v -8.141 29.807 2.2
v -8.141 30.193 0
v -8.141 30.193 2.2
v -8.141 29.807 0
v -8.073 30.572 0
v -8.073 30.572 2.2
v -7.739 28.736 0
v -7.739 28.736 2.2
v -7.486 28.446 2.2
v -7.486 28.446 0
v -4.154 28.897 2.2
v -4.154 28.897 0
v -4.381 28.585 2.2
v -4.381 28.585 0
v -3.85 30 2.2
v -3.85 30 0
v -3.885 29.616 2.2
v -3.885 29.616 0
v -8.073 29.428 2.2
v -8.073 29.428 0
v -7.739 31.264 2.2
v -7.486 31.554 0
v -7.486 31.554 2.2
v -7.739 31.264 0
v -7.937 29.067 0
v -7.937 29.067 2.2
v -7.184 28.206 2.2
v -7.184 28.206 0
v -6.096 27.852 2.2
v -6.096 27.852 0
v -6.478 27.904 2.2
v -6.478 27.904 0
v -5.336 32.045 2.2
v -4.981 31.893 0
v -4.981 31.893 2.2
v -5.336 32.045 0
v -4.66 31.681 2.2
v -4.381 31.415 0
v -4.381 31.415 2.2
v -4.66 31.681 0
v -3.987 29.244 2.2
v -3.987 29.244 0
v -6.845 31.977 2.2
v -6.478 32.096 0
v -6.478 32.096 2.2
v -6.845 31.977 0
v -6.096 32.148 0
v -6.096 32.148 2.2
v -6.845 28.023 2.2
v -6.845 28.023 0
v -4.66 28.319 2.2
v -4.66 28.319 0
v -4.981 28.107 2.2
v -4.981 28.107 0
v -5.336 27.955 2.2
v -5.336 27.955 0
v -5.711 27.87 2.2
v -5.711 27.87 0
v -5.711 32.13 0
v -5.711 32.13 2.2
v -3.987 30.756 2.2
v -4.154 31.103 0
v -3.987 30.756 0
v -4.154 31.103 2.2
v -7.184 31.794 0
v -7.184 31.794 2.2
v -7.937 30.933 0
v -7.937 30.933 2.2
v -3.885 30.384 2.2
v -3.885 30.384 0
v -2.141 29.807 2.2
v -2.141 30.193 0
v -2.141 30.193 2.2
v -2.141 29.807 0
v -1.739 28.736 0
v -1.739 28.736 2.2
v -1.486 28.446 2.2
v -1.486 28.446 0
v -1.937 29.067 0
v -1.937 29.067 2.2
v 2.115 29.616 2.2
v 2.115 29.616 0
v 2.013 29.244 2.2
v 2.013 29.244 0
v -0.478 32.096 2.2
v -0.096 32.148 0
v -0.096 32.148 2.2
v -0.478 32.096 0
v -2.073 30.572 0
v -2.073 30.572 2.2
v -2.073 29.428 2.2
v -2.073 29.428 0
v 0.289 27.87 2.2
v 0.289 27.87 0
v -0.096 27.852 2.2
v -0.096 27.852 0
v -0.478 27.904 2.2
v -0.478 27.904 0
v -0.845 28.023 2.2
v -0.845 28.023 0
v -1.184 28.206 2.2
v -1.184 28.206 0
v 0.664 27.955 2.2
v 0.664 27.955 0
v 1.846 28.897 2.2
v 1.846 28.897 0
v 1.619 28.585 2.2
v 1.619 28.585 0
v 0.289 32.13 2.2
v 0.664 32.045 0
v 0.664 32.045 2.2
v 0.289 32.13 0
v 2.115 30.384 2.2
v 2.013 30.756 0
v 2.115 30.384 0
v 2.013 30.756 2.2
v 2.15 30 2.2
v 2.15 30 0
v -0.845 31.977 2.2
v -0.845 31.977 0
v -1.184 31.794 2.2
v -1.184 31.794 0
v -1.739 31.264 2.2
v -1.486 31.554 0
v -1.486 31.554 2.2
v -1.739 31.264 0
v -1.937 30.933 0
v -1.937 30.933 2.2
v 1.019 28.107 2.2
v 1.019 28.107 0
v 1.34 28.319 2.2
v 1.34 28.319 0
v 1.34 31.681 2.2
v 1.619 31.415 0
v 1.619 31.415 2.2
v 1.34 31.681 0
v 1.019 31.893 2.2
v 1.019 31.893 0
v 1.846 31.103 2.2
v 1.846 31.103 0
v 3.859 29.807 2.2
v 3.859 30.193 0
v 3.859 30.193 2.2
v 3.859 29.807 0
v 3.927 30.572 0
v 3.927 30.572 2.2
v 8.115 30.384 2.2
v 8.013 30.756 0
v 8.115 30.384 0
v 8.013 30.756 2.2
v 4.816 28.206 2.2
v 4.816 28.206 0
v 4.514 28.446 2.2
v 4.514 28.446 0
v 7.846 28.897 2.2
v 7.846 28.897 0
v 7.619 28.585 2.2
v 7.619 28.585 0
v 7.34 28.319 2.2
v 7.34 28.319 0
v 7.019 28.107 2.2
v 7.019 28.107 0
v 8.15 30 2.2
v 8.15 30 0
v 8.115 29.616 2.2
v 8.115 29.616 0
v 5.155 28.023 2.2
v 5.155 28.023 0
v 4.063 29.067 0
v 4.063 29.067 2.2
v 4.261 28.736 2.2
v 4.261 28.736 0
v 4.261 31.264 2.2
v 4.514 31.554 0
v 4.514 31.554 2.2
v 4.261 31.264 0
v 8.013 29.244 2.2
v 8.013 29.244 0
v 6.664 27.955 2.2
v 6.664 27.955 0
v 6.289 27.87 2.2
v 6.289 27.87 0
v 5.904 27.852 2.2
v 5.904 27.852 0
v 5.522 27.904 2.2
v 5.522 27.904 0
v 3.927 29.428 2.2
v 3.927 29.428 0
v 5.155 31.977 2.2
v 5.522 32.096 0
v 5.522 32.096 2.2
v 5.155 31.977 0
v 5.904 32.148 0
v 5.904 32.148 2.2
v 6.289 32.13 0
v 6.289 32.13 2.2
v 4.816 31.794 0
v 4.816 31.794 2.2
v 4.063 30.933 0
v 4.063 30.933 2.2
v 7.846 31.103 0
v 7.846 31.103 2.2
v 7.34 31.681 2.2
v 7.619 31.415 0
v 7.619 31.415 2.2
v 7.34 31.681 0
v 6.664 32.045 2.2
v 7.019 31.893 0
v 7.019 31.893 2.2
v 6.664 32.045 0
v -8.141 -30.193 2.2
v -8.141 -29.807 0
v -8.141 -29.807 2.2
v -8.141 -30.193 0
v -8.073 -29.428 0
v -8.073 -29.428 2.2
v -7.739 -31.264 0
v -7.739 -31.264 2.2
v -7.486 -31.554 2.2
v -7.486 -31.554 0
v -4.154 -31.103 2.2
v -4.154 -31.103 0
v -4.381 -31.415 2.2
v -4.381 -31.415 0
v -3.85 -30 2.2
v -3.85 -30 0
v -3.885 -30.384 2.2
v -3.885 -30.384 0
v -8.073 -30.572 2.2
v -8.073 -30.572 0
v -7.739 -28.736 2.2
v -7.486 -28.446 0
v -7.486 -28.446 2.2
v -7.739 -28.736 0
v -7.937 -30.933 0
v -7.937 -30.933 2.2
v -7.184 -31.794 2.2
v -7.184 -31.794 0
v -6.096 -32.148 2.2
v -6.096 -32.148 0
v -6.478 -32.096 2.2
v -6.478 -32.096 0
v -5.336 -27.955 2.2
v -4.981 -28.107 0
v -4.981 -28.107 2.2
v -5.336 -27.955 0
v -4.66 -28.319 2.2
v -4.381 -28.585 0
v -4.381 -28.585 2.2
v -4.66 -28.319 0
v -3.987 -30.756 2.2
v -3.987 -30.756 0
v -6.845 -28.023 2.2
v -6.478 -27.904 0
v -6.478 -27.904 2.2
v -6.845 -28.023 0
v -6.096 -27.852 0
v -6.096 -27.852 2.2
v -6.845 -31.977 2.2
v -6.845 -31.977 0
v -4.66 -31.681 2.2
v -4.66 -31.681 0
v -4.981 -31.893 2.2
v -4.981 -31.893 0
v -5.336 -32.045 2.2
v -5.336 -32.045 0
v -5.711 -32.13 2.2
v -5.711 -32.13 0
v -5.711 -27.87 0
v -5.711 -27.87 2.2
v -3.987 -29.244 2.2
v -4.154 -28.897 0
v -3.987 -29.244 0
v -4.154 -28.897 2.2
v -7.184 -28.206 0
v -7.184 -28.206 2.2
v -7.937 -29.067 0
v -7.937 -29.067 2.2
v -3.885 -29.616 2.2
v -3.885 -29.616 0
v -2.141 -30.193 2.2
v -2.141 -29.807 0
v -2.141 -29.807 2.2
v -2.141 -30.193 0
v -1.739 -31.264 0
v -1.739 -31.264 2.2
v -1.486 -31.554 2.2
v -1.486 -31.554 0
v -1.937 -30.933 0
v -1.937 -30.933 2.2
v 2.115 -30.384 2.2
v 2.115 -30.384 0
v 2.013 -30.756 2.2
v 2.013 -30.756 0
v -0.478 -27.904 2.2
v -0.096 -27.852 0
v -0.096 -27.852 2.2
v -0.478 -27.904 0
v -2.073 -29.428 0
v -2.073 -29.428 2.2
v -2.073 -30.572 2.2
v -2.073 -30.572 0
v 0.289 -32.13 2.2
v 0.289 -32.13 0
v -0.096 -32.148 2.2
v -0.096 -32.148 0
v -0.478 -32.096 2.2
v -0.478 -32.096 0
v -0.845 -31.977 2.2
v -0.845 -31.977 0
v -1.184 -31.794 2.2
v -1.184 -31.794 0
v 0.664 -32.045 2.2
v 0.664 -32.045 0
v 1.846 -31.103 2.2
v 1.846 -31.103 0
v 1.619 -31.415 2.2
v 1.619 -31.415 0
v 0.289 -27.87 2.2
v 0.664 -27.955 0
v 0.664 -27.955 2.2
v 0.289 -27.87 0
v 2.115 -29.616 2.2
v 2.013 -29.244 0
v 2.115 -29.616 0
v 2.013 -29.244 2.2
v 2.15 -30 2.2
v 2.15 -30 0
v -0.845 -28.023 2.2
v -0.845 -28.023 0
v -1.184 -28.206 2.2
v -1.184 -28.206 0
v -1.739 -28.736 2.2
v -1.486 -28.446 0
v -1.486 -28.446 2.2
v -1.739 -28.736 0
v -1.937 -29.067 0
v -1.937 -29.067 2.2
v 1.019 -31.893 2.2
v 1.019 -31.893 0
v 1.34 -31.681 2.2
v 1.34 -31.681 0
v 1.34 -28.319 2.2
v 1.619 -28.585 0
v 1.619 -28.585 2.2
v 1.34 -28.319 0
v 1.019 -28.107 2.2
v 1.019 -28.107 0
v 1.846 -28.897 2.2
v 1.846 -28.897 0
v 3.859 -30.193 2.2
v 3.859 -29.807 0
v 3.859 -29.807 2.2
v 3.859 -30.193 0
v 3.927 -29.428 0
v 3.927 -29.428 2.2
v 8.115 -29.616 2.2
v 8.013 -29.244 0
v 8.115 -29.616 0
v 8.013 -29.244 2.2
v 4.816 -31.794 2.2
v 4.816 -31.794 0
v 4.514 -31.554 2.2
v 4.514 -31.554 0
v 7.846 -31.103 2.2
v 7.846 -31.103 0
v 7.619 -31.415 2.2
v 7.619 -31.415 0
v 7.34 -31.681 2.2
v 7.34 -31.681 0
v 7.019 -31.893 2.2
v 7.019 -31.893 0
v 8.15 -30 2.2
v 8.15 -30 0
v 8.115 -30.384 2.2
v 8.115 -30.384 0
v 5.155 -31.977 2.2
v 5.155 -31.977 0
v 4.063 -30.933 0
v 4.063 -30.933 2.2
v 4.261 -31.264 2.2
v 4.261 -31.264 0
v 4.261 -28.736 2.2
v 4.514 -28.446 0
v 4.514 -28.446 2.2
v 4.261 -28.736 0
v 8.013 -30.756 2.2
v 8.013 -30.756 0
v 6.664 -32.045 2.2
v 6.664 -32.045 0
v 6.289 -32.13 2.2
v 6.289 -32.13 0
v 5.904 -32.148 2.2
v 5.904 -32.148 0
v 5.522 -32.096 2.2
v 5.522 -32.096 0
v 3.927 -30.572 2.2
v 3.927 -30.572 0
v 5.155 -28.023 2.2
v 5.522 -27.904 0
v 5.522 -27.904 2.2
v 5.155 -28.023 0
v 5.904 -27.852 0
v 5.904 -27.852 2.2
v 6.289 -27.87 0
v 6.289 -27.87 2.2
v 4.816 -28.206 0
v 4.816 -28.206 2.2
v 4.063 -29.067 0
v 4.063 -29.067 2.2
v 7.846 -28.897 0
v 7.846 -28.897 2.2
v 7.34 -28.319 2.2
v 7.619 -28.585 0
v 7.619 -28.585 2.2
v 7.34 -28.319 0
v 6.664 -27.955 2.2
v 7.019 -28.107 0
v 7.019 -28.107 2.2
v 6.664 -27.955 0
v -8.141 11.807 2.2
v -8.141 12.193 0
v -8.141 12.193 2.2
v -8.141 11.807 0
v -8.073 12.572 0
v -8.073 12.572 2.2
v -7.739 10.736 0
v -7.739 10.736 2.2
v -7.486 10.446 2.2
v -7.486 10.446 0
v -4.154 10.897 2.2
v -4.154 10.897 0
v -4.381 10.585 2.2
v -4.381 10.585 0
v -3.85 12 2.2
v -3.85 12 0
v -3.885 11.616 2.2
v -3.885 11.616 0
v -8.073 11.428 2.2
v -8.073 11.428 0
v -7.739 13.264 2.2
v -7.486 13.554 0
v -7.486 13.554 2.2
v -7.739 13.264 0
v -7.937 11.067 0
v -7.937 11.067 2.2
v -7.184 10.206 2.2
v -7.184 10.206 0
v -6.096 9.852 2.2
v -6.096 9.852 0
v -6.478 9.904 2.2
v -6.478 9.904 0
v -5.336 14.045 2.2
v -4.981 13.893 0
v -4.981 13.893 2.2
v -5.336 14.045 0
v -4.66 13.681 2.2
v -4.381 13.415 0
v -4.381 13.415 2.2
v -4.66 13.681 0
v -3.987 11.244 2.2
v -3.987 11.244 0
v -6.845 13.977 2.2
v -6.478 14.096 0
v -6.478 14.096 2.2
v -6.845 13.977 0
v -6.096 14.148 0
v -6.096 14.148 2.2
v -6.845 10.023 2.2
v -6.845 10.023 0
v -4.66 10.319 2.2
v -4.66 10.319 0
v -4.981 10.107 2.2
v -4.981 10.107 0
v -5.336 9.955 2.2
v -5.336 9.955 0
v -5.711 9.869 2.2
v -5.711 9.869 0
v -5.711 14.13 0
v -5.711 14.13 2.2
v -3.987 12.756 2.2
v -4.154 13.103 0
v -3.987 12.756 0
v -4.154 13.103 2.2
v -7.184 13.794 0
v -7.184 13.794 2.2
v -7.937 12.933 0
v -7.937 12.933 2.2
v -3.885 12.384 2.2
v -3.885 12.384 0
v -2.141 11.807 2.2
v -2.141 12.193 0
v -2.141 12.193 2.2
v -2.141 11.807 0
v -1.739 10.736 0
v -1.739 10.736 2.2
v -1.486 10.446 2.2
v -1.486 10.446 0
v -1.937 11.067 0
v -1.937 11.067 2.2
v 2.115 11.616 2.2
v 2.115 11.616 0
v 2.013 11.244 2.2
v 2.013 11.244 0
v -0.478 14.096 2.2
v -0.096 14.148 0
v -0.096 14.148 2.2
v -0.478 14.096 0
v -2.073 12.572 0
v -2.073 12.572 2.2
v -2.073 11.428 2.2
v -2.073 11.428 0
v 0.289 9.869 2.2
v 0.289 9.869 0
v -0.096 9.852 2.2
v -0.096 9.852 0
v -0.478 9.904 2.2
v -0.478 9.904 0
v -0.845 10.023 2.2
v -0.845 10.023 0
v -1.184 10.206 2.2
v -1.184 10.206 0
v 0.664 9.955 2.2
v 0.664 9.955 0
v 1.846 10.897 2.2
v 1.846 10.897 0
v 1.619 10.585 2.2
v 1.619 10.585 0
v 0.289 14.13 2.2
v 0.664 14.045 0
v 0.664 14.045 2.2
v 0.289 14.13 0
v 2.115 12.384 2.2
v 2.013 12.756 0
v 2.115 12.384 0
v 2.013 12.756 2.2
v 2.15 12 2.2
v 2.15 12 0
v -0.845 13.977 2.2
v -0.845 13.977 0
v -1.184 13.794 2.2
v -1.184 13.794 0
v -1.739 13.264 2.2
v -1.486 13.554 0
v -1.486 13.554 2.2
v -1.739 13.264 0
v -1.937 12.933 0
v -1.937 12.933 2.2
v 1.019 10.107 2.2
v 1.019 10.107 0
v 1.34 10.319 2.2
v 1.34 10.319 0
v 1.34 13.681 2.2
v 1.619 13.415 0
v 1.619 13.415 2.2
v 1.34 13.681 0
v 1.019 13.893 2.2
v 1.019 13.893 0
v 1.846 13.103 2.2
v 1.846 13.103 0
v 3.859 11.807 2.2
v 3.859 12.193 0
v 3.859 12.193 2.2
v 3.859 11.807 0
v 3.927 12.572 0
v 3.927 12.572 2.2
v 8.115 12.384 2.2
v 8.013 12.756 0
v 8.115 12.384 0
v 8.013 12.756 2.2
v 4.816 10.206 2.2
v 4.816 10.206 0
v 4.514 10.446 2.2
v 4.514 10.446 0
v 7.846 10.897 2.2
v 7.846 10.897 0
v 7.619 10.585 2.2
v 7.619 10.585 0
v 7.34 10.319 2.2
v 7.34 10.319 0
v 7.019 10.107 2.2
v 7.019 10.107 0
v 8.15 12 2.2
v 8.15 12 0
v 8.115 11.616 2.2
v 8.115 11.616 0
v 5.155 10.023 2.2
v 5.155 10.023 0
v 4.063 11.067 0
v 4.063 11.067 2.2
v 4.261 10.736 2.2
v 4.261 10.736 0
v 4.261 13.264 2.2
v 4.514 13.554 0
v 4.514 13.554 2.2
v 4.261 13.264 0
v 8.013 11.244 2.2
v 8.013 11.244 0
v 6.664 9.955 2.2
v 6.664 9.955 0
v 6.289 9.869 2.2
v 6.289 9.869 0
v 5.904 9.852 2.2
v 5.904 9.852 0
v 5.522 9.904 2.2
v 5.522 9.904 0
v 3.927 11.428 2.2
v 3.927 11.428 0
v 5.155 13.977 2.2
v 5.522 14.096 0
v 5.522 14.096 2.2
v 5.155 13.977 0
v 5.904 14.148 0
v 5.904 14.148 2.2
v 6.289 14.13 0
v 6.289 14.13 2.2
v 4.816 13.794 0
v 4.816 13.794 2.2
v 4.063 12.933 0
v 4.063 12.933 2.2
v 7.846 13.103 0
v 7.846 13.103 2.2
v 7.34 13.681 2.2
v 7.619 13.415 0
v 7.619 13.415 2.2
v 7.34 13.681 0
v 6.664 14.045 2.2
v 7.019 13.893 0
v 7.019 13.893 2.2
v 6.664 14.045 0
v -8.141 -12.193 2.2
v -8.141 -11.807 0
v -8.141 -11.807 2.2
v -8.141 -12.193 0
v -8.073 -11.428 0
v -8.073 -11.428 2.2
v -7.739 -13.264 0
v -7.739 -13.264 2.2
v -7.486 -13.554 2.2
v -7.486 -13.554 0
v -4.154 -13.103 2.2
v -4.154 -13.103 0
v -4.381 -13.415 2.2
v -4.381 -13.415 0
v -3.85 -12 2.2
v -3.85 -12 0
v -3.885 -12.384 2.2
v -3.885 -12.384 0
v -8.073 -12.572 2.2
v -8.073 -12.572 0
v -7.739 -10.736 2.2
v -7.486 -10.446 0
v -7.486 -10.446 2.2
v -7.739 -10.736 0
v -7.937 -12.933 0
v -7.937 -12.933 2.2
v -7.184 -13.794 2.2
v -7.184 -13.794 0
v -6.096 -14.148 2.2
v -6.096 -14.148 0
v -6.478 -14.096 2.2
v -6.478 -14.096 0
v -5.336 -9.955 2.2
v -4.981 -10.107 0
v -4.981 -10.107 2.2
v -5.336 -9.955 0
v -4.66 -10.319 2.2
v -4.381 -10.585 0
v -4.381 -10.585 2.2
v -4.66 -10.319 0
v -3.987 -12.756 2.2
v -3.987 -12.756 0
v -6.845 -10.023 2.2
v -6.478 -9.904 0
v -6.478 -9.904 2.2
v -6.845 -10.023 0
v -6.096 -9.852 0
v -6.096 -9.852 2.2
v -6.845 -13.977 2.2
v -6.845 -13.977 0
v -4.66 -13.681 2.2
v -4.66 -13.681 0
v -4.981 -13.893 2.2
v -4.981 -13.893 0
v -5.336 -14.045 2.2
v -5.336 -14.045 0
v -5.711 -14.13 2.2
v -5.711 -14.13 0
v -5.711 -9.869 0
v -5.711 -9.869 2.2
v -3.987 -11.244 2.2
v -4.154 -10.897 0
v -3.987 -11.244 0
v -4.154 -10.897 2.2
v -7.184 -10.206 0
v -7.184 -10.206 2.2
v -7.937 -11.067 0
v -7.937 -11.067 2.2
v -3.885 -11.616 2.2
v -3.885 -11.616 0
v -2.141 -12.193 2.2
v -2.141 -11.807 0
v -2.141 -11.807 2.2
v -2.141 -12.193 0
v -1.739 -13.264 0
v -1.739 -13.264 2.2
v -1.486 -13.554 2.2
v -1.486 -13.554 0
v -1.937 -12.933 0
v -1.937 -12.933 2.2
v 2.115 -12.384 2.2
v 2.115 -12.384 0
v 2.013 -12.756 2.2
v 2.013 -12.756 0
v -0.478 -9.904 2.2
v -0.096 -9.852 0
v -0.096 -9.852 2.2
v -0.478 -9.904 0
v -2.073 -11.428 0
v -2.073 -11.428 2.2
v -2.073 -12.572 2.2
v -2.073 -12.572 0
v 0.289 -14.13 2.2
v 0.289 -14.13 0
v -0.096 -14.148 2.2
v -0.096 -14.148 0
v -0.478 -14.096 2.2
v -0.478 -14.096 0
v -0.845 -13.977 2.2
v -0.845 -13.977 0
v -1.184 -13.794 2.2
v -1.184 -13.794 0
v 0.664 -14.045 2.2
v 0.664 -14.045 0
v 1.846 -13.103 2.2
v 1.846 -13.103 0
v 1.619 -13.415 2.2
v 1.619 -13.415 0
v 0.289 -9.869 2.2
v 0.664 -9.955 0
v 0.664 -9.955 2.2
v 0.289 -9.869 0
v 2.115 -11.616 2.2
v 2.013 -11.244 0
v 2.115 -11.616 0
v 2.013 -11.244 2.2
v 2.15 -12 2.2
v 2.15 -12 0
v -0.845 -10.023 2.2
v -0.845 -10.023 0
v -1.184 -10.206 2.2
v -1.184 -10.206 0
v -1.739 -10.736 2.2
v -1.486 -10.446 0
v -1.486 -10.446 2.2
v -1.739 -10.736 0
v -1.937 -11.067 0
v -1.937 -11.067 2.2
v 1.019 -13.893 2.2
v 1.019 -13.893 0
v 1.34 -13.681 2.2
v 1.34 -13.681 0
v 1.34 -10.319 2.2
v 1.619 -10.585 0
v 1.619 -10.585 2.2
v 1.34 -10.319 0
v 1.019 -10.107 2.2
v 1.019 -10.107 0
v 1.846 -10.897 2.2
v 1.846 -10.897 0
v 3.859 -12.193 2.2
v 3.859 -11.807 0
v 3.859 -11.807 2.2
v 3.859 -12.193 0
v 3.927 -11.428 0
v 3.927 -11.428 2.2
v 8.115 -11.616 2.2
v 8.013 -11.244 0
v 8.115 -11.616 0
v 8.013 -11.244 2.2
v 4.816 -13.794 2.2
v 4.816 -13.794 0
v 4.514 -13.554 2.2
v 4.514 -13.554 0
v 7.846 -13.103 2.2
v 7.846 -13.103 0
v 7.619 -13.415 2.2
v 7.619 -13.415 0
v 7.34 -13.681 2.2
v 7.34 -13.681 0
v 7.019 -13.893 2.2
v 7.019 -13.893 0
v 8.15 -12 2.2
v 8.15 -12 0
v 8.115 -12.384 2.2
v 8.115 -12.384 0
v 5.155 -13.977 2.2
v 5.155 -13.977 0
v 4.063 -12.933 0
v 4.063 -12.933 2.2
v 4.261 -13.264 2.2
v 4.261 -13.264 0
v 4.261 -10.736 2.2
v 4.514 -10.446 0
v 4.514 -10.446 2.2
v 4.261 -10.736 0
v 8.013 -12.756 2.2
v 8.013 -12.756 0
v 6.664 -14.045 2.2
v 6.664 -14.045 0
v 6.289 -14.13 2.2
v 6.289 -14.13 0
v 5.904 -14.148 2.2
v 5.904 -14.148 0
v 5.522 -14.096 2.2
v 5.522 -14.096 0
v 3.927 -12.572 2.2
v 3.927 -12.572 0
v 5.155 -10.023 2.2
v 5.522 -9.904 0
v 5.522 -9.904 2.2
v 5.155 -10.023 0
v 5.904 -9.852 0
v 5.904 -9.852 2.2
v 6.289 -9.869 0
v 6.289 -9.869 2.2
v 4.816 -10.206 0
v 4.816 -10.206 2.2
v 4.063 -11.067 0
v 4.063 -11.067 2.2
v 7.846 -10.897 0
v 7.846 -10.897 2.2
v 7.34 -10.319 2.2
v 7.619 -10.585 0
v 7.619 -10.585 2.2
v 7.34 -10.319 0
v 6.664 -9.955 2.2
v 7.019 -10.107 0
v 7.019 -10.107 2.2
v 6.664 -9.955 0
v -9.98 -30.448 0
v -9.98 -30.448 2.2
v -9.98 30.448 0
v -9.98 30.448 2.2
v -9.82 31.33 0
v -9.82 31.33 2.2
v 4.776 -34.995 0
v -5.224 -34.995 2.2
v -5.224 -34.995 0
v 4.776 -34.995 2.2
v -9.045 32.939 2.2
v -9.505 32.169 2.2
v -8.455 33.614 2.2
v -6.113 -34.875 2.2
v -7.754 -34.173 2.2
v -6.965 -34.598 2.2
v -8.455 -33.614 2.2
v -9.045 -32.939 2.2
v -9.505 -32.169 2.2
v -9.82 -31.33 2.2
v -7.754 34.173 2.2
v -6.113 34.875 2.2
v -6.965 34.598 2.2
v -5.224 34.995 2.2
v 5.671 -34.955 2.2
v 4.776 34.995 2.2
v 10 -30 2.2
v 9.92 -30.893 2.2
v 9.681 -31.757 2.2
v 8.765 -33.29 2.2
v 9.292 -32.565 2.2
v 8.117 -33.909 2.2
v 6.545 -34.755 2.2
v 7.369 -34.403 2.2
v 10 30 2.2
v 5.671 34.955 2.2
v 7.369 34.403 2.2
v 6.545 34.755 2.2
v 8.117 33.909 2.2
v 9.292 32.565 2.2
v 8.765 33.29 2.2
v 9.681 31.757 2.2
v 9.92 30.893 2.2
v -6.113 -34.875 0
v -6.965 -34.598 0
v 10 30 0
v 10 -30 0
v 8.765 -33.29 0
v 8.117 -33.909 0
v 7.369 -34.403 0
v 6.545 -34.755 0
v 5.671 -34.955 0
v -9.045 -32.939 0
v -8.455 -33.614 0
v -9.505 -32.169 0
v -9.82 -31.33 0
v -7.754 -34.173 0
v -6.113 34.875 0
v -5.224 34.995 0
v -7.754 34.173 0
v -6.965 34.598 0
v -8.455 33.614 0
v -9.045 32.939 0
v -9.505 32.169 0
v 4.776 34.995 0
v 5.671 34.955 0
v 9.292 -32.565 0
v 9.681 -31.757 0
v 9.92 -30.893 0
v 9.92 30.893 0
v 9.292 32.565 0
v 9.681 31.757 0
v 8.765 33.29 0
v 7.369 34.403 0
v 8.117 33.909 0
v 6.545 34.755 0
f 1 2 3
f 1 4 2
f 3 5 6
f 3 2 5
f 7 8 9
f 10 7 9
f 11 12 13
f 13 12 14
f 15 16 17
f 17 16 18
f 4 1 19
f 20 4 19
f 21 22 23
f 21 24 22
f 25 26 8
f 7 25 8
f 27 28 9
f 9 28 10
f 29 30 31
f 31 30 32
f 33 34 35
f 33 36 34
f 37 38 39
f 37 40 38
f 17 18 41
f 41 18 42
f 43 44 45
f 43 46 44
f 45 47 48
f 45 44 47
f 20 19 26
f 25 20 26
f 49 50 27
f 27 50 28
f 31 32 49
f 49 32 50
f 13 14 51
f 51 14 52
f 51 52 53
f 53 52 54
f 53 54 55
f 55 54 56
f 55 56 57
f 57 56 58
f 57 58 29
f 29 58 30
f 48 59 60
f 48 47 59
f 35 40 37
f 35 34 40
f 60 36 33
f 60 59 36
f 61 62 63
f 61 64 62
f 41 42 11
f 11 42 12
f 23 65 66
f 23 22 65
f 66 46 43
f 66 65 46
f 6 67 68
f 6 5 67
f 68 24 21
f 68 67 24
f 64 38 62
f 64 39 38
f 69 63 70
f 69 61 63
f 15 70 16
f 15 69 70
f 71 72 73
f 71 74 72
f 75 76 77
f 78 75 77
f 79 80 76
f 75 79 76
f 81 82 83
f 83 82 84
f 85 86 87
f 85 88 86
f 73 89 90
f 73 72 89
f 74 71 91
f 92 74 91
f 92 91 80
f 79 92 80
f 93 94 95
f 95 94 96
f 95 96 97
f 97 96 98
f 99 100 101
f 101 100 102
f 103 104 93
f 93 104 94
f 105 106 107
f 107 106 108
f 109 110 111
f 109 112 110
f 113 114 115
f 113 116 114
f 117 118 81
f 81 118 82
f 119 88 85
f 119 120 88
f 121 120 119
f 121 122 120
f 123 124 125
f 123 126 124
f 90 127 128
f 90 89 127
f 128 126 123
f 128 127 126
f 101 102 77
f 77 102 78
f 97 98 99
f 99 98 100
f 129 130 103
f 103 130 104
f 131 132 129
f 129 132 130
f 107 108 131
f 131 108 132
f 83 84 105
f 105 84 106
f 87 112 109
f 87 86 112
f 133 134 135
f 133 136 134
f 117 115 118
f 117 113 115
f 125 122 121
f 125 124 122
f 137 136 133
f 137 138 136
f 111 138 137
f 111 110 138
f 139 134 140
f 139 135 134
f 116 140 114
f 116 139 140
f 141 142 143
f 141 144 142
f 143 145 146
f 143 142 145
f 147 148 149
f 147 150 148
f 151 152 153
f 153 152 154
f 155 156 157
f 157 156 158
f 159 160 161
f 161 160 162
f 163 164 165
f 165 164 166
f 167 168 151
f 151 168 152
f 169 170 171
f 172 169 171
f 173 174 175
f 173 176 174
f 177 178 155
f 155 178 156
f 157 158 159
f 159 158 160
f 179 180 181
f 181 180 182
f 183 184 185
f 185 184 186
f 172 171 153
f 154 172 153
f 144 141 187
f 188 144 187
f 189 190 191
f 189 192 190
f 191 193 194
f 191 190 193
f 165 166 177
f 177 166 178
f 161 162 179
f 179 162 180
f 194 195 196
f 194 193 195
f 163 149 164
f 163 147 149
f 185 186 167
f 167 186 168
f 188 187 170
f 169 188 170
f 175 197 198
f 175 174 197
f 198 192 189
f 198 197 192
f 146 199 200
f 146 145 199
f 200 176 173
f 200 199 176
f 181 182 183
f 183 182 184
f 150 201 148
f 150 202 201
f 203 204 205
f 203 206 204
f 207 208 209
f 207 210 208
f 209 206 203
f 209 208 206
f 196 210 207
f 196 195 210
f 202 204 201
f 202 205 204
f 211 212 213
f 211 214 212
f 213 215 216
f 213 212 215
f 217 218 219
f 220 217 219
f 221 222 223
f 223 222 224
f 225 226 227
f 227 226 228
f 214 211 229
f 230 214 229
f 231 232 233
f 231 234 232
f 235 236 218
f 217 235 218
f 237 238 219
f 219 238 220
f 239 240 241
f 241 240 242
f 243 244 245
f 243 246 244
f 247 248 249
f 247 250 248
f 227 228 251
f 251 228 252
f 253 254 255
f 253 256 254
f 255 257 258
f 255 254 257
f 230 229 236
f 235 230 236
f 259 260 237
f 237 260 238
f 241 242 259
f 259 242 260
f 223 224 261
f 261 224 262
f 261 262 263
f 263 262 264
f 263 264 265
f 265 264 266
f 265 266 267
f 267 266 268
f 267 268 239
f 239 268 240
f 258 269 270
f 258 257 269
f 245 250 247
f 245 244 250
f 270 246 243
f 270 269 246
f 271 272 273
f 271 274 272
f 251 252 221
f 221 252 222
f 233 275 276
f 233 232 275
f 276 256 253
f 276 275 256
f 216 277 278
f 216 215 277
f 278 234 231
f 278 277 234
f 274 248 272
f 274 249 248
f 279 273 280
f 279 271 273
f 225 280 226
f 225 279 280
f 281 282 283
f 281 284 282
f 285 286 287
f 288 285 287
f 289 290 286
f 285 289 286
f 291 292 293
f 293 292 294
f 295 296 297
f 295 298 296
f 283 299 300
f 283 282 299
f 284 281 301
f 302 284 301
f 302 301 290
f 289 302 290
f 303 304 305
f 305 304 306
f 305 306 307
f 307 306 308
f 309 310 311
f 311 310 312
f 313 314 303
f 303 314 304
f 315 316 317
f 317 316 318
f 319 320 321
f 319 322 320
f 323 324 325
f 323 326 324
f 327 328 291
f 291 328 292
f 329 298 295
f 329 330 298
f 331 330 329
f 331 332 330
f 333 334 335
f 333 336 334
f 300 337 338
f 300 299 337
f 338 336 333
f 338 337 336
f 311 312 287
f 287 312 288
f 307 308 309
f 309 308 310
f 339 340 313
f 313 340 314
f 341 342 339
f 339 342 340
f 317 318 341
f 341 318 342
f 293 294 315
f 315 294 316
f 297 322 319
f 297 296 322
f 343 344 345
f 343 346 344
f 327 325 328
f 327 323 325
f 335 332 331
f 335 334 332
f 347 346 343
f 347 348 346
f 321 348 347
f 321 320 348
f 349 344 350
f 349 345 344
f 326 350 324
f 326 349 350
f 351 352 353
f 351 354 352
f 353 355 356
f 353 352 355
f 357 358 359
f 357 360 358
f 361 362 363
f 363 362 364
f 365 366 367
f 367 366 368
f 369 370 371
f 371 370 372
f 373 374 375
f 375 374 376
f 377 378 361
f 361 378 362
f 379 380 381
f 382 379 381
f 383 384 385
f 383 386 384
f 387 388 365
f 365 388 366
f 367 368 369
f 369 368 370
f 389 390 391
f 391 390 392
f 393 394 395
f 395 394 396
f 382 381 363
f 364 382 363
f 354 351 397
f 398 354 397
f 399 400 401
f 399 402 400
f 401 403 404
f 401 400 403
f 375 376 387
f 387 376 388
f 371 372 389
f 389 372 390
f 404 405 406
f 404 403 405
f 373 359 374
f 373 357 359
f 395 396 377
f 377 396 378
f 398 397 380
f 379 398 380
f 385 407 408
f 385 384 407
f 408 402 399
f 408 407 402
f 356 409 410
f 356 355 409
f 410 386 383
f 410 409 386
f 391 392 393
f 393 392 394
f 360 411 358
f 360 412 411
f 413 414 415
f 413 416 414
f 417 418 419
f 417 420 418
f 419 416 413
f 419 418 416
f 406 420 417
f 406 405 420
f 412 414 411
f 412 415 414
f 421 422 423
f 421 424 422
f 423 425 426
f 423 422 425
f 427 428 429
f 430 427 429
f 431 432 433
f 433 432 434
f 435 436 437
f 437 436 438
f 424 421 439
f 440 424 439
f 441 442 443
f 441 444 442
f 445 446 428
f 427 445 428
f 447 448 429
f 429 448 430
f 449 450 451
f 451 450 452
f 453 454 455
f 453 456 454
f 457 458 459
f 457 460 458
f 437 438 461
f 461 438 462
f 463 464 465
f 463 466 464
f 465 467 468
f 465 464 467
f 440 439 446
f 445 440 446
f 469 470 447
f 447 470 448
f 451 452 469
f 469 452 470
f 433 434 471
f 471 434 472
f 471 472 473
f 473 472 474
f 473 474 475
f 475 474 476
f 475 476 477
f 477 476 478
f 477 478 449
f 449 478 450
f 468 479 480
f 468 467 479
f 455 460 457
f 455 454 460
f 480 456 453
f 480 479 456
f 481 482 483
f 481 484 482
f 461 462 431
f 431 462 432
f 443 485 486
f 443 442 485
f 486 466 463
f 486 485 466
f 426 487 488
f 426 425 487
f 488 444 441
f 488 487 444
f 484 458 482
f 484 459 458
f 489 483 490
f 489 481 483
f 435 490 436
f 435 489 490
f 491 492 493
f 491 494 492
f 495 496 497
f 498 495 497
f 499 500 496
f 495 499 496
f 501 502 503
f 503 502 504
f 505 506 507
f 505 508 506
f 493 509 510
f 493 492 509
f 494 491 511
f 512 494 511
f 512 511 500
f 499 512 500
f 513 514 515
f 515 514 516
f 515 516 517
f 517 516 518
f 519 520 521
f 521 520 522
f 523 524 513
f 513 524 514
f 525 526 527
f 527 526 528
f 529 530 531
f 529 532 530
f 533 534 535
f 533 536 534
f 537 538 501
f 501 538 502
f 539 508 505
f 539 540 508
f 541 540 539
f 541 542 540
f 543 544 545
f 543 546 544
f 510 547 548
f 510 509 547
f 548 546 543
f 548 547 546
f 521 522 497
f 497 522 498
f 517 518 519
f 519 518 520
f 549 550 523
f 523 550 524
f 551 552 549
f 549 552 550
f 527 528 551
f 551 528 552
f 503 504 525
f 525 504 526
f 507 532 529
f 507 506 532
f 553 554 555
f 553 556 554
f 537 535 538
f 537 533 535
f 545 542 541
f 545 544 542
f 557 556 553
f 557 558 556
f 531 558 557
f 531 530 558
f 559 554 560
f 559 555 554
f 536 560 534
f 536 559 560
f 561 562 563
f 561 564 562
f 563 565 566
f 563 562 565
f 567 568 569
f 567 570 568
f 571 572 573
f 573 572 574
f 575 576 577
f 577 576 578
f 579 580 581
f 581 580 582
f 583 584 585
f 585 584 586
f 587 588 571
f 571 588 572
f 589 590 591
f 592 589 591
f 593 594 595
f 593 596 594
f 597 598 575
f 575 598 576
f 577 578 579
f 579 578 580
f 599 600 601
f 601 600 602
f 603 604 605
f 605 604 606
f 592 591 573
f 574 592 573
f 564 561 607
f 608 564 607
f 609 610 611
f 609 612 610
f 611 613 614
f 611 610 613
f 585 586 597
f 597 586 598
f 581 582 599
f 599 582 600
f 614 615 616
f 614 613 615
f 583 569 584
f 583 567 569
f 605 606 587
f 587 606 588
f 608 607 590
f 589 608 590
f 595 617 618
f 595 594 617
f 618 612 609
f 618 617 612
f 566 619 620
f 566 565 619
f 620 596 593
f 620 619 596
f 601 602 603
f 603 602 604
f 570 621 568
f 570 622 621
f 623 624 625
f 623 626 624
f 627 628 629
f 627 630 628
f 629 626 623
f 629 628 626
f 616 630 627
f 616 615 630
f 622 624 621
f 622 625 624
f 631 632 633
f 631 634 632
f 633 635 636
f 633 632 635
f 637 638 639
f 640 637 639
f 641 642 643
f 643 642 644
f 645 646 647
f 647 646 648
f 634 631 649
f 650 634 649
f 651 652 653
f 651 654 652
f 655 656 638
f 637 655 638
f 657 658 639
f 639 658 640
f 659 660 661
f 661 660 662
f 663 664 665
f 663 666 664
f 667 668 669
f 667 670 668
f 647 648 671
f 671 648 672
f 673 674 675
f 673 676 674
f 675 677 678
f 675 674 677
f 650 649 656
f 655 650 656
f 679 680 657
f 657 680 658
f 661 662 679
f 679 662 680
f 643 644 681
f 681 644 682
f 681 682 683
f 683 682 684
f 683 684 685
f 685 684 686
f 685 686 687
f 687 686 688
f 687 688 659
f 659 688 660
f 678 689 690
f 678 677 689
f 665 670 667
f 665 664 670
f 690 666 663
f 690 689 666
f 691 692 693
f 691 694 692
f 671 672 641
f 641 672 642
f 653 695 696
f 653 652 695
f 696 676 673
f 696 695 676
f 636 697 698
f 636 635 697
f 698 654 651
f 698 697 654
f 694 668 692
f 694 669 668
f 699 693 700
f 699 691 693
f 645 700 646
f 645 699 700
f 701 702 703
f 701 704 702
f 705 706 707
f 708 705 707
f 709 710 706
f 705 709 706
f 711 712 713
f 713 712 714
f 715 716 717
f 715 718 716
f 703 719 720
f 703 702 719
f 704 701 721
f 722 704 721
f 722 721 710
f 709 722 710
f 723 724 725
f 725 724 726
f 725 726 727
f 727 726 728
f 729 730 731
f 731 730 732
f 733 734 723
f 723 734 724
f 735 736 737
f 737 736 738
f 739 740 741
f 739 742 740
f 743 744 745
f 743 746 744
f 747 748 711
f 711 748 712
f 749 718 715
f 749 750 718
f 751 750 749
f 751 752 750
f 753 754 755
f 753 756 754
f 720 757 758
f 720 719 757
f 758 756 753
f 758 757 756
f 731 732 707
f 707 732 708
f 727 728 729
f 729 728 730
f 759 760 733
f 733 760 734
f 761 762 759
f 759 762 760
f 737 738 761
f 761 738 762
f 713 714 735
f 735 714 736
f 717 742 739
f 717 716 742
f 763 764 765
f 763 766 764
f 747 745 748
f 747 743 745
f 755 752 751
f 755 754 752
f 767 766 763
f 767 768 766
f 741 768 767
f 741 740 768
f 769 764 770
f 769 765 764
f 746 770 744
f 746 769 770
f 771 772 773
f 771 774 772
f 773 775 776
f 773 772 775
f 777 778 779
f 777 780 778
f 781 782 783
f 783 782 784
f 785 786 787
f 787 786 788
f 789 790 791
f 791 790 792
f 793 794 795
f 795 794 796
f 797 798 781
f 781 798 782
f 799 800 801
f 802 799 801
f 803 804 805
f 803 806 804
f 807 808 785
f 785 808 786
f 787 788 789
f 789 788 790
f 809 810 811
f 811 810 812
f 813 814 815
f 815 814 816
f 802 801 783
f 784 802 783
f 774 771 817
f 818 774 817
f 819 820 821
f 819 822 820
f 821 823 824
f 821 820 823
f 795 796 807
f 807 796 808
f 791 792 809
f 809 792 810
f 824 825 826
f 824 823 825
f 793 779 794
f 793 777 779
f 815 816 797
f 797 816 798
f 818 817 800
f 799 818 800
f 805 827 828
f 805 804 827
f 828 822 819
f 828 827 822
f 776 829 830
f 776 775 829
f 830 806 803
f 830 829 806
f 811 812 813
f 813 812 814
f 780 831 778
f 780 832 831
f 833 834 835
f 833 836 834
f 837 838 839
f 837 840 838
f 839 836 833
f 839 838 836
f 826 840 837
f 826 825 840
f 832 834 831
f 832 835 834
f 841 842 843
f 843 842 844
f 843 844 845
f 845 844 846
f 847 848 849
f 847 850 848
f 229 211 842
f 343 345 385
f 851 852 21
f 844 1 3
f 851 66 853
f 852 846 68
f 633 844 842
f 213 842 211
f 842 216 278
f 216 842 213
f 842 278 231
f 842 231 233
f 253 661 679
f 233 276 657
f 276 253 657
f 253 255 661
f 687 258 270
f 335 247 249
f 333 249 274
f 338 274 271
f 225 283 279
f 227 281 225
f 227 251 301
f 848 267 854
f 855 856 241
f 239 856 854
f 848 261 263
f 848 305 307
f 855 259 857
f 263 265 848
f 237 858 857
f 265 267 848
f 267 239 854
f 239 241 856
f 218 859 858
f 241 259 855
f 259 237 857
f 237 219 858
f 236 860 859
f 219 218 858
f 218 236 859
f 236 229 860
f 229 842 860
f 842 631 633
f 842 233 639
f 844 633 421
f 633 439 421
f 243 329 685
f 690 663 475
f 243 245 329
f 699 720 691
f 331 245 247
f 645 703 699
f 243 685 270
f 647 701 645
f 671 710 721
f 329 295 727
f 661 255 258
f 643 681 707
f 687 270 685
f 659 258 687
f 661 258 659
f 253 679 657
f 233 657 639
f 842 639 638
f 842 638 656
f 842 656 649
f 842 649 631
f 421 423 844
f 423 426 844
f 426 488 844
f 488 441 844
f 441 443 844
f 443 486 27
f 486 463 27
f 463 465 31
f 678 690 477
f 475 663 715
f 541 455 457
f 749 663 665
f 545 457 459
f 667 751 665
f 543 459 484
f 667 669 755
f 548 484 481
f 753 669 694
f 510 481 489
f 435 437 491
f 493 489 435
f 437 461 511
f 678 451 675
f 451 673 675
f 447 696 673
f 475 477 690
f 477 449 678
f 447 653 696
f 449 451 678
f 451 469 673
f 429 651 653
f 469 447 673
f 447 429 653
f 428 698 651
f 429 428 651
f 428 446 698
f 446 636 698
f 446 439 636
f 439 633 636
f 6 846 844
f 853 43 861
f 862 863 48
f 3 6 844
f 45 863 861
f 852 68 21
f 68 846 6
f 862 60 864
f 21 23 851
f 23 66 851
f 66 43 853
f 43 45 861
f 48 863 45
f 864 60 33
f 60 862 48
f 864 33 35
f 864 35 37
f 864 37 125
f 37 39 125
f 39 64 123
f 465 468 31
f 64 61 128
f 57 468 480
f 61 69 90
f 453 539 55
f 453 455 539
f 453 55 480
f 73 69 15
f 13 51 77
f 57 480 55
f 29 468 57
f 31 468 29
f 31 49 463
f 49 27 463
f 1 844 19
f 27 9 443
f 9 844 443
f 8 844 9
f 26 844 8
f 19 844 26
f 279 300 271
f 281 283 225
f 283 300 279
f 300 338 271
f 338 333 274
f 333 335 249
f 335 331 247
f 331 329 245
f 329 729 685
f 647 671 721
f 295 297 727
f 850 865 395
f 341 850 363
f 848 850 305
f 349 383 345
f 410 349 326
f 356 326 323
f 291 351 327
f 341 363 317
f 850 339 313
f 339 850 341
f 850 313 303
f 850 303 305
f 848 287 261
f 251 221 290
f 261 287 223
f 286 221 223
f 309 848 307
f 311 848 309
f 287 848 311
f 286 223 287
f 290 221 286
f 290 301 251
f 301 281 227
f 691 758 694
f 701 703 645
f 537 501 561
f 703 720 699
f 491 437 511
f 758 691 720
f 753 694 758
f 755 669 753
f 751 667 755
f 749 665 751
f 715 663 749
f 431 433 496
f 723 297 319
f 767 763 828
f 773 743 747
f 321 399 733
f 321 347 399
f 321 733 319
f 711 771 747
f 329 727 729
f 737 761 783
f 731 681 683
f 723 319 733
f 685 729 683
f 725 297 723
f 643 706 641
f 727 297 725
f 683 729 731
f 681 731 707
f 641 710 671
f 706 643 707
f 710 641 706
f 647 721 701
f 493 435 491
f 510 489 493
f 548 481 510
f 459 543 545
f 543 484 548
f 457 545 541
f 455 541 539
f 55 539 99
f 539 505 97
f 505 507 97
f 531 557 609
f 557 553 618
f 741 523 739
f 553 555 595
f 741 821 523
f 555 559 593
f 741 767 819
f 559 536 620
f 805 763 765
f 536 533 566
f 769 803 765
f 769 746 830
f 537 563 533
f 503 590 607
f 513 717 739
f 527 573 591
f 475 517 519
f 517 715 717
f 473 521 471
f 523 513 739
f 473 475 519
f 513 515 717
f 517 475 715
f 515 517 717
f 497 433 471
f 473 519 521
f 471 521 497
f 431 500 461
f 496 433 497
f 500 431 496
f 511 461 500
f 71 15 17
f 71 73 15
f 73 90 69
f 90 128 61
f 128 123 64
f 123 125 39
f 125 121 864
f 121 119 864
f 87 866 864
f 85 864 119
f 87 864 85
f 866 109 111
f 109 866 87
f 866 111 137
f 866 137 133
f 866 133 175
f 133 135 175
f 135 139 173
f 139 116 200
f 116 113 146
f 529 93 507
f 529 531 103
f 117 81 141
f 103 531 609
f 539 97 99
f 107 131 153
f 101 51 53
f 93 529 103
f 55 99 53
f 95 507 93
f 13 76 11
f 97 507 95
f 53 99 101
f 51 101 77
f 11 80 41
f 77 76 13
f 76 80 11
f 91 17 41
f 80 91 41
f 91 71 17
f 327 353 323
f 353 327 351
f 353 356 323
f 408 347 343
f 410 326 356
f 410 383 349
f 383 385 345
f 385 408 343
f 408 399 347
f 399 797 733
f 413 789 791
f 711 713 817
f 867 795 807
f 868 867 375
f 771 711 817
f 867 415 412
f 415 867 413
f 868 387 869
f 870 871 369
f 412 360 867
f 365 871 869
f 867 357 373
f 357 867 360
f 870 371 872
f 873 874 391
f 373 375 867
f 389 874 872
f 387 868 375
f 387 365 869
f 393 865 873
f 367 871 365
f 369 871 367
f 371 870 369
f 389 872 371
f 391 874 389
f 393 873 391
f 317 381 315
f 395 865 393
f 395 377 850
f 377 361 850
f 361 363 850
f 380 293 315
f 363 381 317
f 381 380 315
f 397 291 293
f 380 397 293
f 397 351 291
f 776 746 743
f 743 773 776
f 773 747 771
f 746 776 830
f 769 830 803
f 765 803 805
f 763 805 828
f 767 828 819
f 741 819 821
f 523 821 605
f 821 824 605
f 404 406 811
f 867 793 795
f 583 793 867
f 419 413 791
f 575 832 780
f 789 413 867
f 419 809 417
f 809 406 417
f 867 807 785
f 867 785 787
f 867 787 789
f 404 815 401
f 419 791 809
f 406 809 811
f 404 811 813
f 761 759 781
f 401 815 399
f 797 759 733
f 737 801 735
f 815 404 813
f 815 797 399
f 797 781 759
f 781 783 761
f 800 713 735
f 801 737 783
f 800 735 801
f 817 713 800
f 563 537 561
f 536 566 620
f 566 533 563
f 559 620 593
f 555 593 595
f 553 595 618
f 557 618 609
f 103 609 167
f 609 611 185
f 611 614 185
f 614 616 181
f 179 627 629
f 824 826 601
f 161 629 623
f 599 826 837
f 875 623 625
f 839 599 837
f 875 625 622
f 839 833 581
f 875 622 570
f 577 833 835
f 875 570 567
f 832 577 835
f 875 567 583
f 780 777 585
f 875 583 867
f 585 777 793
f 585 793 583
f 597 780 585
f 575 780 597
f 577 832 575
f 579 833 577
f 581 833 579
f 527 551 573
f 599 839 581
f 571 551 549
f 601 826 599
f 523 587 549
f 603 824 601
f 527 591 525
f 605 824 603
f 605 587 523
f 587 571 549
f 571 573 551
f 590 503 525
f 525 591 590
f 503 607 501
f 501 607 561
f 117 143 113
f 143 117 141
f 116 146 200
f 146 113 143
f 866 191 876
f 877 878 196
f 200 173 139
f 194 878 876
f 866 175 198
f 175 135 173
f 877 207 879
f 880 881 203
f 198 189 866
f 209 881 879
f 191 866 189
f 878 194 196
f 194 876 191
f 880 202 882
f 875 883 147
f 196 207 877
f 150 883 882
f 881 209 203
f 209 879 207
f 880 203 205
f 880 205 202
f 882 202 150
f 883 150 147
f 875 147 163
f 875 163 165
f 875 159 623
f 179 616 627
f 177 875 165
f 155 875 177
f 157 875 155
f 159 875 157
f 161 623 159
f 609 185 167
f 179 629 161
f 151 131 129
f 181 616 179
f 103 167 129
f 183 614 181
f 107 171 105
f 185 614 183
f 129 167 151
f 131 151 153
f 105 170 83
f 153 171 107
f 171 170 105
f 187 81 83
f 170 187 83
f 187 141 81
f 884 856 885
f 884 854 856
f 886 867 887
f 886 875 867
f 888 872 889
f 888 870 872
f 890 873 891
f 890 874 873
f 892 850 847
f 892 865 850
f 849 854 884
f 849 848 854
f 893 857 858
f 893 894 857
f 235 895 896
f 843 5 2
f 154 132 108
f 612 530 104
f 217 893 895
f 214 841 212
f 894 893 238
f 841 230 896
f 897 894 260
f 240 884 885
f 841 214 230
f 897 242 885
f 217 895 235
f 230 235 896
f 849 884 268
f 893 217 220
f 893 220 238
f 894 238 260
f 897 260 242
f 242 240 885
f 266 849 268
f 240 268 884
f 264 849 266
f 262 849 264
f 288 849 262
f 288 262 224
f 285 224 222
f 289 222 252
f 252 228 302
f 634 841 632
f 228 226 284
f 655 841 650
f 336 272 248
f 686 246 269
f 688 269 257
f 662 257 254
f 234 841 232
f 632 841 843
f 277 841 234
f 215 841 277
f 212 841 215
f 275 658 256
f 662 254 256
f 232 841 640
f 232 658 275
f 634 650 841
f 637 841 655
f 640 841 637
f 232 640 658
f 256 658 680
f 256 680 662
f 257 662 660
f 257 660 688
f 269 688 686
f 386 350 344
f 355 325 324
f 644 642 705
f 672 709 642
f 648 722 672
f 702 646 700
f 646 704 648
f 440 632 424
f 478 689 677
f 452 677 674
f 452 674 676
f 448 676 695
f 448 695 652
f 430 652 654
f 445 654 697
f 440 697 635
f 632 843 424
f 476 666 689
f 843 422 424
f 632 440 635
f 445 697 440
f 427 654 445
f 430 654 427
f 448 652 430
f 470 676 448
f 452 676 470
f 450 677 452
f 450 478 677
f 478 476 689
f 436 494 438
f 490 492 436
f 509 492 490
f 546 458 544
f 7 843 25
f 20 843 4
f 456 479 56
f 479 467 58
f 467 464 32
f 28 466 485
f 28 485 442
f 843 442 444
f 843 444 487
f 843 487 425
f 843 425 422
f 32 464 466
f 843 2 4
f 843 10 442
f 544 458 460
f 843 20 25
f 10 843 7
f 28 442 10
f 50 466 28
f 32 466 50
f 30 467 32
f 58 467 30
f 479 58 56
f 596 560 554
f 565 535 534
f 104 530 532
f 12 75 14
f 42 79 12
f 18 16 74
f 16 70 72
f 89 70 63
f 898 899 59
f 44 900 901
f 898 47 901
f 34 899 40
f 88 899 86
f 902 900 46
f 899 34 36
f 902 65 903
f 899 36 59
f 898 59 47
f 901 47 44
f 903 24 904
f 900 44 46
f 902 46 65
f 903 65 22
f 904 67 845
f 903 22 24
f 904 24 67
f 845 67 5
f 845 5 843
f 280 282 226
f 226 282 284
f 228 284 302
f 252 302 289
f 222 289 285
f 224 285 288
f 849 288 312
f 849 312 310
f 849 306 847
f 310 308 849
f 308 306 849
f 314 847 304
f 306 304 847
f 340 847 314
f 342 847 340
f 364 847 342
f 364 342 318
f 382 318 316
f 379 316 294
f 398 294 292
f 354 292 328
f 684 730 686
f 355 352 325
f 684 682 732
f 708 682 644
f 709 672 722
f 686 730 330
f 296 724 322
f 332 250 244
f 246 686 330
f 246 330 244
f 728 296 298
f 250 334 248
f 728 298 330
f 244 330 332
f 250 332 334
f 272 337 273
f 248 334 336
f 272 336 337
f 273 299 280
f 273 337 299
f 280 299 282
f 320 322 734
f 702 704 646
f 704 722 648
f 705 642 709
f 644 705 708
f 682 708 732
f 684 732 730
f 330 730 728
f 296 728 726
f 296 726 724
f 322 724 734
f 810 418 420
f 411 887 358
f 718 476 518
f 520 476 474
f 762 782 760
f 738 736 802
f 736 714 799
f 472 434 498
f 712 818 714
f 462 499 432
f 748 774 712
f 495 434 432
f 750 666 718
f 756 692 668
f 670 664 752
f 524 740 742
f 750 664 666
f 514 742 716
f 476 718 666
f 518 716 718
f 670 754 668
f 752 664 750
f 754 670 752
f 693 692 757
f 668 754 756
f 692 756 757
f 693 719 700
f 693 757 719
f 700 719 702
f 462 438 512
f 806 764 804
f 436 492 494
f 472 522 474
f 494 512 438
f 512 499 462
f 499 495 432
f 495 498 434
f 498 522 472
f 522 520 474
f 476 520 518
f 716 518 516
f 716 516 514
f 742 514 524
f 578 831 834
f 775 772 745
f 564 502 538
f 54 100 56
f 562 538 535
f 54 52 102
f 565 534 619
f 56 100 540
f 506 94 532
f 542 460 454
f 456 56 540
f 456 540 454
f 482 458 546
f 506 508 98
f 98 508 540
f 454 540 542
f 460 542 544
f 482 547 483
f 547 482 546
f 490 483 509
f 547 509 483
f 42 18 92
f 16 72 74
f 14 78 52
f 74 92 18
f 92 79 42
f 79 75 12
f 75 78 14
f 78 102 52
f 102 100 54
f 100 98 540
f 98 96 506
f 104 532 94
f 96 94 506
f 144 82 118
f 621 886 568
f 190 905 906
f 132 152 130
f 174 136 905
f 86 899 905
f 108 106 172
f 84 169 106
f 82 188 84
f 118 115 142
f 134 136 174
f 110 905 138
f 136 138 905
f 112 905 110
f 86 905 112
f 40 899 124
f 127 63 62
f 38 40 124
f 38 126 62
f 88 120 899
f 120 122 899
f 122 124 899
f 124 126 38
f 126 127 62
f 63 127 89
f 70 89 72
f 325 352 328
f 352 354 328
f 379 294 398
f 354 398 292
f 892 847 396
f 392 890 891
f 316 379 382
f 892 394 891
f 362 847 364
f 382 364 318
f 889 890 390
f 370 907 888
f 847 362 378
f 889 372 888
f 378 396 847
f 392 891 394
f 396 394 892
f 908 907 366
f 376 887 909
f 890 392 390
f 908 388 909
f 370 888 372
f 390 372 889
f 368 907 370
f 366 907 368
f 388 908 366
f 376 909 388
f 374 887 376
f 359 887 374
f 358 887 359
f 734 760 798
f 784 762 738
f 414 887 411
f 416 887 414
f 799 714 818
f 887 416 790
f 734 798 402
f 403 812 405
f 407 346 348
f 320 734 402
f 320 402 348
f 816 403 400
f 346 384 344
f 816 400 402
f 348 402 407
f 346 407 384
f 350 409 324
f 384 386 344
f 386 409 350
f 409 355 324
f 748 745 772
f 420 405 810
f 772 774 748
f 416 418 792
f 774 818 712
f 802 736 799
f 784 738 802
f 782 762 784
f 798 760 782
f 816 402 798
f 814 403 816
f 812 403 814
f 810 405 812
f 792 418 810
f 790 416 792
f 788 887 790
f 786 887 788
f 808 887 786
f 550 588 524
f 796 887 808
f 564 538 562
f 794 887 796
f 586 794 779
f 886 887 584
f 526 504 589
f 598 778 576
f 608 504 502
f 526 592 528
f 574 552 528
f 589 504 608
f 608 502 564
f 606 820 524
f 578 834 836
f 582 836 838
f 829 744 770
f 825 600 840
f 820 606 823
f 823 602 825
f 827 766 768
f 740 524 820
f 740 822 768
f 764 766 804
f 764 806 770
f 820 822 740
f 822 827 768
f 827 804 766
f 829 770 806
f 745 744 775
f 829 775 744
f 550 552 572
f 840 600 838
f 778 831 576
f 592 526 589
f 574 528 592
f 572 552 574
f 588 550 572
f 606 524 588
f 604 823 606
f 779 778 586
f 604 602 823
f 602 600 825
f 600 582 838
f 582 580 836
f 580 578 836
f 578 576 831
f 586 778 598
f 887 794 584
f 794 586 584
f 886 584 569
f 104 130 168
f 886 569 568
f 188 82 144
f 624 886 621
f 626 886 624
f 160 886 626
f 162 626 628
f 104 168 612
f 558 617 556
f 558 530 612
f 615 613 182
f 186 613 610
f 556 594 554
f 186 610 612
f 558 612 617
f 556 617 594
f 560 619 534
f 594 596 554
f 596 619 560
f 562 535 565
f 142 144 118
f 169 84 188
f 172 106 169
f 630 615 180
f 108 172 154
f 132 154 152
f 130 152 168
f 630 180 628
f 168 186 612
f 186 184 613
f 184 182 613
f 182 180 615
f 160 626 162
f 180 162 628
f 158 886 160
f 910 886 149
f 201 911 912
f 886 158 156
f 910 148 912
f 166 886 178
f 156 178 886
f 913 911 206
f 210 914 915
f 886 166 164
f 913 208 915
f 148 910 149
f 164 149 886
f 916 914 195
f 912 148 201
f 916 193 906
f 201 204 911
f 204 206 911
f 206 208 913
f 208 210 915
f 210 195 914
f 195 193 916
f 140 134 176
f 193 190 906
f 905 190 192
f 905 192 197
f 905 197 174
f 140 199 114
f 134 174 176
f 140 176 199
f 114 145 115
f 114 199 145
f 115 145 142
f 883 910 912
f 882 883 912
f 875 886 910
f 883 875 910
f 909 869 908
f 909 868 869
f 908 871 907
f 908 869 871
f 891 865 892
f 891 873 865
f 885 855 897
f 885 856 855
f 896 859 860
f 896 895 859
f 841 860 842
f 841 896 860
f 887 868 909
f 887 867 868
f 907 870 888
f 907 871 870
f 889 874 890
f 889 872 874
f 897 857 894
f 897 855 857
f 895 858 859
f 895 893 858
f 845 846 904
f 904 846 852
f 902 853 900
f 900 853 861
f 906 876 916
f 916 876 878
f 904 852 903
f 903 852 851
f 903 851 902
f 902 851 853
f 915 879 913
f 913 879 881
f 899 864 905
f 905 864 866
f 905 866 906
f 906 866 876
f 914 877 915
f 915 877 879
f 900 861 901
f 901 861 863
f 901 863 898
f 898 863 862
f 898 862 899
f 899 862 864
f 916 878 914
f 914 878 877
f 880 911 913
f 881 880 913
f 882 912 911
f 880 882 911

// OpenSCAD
// file: ../../util/rounded.scad
// Do a rounded cube
module rounded(x=10, y=10, z=10, r=3, center=false) {
  if (center) {
    translate([-(x/2),-(y/2),0])
      rounded(x, y, z, r);
  } else {
    translate([r,r,0])
    minkowski() {
      cube([x-2*r,y-2*r,z/2]);
      cylinder(h=z/2, r=r);
    }
  }
}
// file: ../../util/hole3.scad
module hole3()
{
    cylinder(d=3.5, h=99, center=true);
}
// file: ../../util/repeat4.scad
module repeat4()
{
    for (r=[0:3])
    rotate([0,0,90*r])
    children();
}
// file: ../../util/hexapath.scad
// Follow an hexagonal path
module hexapath(X, Y, thickness, center=false)
{
    union() {
        linear_extrude(thickness, center=center)
            polygon(points=[
                    [X, Y], [X, -Y], 
                    [Y, -X], [-Y, -X],
                    [-X, -Y], [-X, Y],
                    [-Y, X], [Y, X], 
            ]);
    }
}
// file: ../../models/ollo.scad
// Diameter of plastic ollo holes
OlloHoles = 4.3;

// Width of Ollo "real" plastic
OlloWidth = 3;

// Distance between two ollo holes
OlloSpacing = 6;

// Do an Ollo hole on the part
module olloHole(depth=2.2)
{
    translate([0,0,-0.1])
      cylinder(depth+0.2, OlloHoles/2, OlloHoles/2);
}

// Do 3 ollo holes
module threeOllo(depth=2.2)
{
  for (xy=[[-OlloSpacing,0],[0,0],[OlloSpacing,0]]) {
    translate([xy[0], xy[1], 0])
    olloHole(depth);
  }
}

// Do a servo arm holes
module servoArm(depth=2.2)
{
    threeOllo(depth);
    rotate([0,0,90])
      threeOllo(depth);
}
// file: ../../parts/batfix.scad
include <../models/ollo.scad>;
use <../util/rounded.scad>;
use <../util/screws.scad>;

module batfix(thickness=2.2, cavity=13, height=10, screws=3.2,print=false)
{
	shift=9;
	holesSpacingW = OlloSpacing*7;
	holesSpacingH = OlloSpacing*2;
	R=print?[90,0,0]:[0,0,0];
	translate([-shift,0,height-2*thickness])
	rotate(R)
	difference() {
		union() {
			rounded(50, 20, thickness, 2, center=true);
			translate([shift,0,thickness-height/2])
			cube([cavity+2*thickness,20,height], center=true);
		}
		
		for (X=[-holesSpacingW/2, holesSpacingW/2])
		for (Y=[-holesSpacingH/2, holesSpacingH/2])
		translate([X,Y,-1])			
			cylinder(d=screws, h=thickness+2);
		
		translate([shift,0,0.01+2*thickness-height/2])
			cube([cavity,22,height], center=true);
		
		translate([shift,0,thickness-height])
			children();
	}
}

batfix();
// file: ../../parts/leg.scad
use <../models/ollo.scad>;
use <../util/rounded.scad>;

module leg(sizeA=60, sizeB=20, sizeC=20, sizeBottom=10,
        sizeTop=15, mode="arm", fixationAngle=0, thickness=2.2, print=false)
{
    xOffset = (mode == "side") ? -10 : 0;
    spacing = (mode == "side") ? 24 : 30;

    module legSide()
    {
        difference() {
            union() {
                translate([0,0,sizeA/2])
                    rotate([0,90,0]) {
                        cube([sizeA, 20, thickness], center=true);
                        if (mode == "side") {
                            translate([15-sizeA/2, 10, -thickness/2])
                                rotate([0,0,+fixationAngle])
                                rounded(25,10,thickness, center=true);
                        }
                    }
            }
            translate([-thickness, 0, sizeA-15]) {
                rotate([90,0,90]) {
                    if (mode == "arm") {
                        servoArm(2*thickness);
                    }
                }
                if (mode == "side") {
                    translate([0,10,0])
                        rotate([90,90-fixationAngle,90])
                        threeOllo(2*thickness);
                }
            }
        }
        translate([-thickness/2,0,sizeA]) {
            rotate([90,0,90])
                linear_extrude(thickness)
                polygon([[-10,0],[-1,sizeTop],[1,sizeTop],[10,0]]);
        }
    }

    module biais() {
        Dx = (spacing-sizeBottom)/2;
        Dy = sizeC;
        Dl = sqrt(pow(Dx,2)+pow(Dy,2));

        translate([-(spacing/2)-thickness,-10,-(sizeB+thickness/2)])
            rotate([0,atan2(Dy,Dx),0])
            cube([Dl,20,thickness]);
    }

    if (print) {
        translate([0,0,10-xOffset])
            rotate([90,0,0])
            leg(sizeA, sizeB, sizeC, sizeBottom,
                    sizeTop, mode, fixationAngle, thickness, false);
    } else {
        echo("[PART] leg");
        translate([0,xOffset,-sizeA+15]) {
            cube([spacing+thickness*2, 20, thickness], center=true);

            translate([spacing/2+thickness/2,0,0])
                legSide();
            translate([-(spacing/2+thickness/2),0,0])
                legSide();

            translate([0,0,-sizeB])
                cube([spacing+thickness*2, 20, thickness], center=true);
            translate([spacing/2+thickness/2,0,-sizeB/2])
                cube([thickness,20,sizeB], center=true);
            translate([-(spacing/2+thickness/2),0,-sizeB/2])
                cube([thickness,20,sizeB], center=true);

            translate([0,0,-(sizeB+sizeC)])
                cube([sizeBottom+thickness*2, 20, thickness], center=true);

            biais();
            mirror([1,0,0]) {
                biais();
            }
        }
    }
}

leg();
// file: ../../parts/side.scad
include <../models/ollo.scad>;
use <../util/rounded.scad>;

module side(size=40, holesToBorder=5, thickness=2.2, print=false) {
    if (print) {
        translate([0,-size+holesToBorder,0])
            side(size,holesToBorder,thickness,false);
    } else {
        echo("[PART] side");
        translate([0,size-holesToBorder,0]) {
            difference() {
                rounded(20, size*2, thickness, 5, true);
                for (y=[size-holesToBorder,	 -size+holesToBorder,
                        size-holesToBorder-3*OlloSpacing, -size+holesToBorder+3*OlloSpacing]) {
                    translate([0, y, 0])
                        threeOllo();
                }
            }
        }
    }
}

side();
// file: ../../parts/u.scad
use <../models/ollo.scad>;

module u(height=15, radius=8, thickness=2.2, screwsSpacing=10, screwsDiameter=2.6, screws=true, olloScrew=false, widthSize=15, print=false) {
    module Ubranch() {
        union() {  
            cylinder(thickness, 10, 10);
            translate([-10,0,0])
                cube([20, height, thickness]);
        }
    }

    module USide() {
        difference() {
            union() {
                Ubranch();
                translate([-10,height+radius-thickness,radius])
                    cube([20,thickness,widthSize-(radius-thickness)]);
                translate([-10,height,radius]) {
                    rotate([0,90,0]) {
                        difference() {
                            cylinder(20,radius,radius);
                            translate([0,0,-1])
                                cylinder(22,radius-thickness,radius-thickness);
                            translate([-10+radius-thickness,-10,-1])
                                cube([10,10,22]);
                            translate([-10,-20+radius-thickness,-1])
                                cube([10,20.01,22]);
                        }
                    }
                }
            }
            servoArm(depth=6);
        }
    }

    module UScrews() {
        for (x=[-screwsSpacing/2,screwsSpacing/2]) {
            for (y=[-screwsSpacing/2,screwsSpacing/2]) {
                rotate([270,0,0])
                    translate([x,y,0])
                    cylinder(d=screwsDiameter, h=100);
            }
        }
    }

	module UOllo() {
		rotate(-90, [1,0,0])
			servoArm(2*height);
	}

    if (print) {
        translate([0,0,10])
            rotate([0,90,0])
            u(height,radius,thickness,screwsSpacing,screwsDiameter,
                screws,olloScrew,widthSize,false);
    } else {
        echo("[PART] u");
        difference() {
            translate([0,0,-widthSize-thickness]) {
                USide();
                mirror([0,0,1]) translate([0,0,-2*thickness-2*widthSize])  
                    USide();
            }
            if (screws) {
                UScrews();
            }
            if (olloScrew) {
                UOllo();
            }
        }
    }
}

u();
// file: ../../parts/body.scad
use <../models/ollo.scad>;
use <../util/hexapath.scad>;
use <../util/repeat4.scad>;
use <../util/hole3.scad>;

$fn=25;

module body(thickness=2.2, type="top", print=false) {
    // The layout path
    X=45;
    Y=15;
    
    difference() {
        // Making the exernal path
        hexapath(X, Y, thickness=thickness);
        
        if (type == "top") {
            // Craving the board to make it accessible
            hexapath(X-8, Y-8, thickness=99, center=true);
            
            // Adding holes for the magnets
            repeat4()
            translate([41,0,0])
            hole3();
        } else if (type == "bottom") {
            // Adding holes for the XBoard
            repeat4()
            translate([35, 11.5, 0])
            hole3();
        }
        
        // Motors fixation
        repeat4()
        rotate([0,0,45])
        translate([38,0,0])
        rotate([0,0,90])
        threeOllo();
    }
    
}

body(type="top");
// file: ../../util/screws.scad
module screws(count=4, radius=5, size=3.3, thickness=2.2)
{
	for (screw=[1:count]) {
		rotate([0,0,screw*360/count])
		translate([radius,0,-1])
		cylinder(d=size, h=thickness+2);
	}
}

module squareScrews(w=10, h=10, size=3.3, thickness=2.2) {
	for (X=[-w/2, w/2])
	for (Y=[-h/2, h/2])
	translate([X,Y,-1])		
		cylinder(d=size, h=thickness+2);
}
// file: ../parts.scad
include <config.scad>;
use <../util/screws.scad>;
use <../parts/body.scad>;
use <../parts/u.scad>;
use <../parts/side.scad>;
use <../parts/leg.scad>;
use <../parts/batfix.scad>;

module metabot_colorize() {
    color(PartsColor)
        children();
}

module metabot_u(print=false) {
    metabot_colorize()
        u(UHeight, URadius, Thickness, UScrewsSpacing, UScrewsDiameter, print=print);
}

module metabot_leg(print=false) {
    metabot_colorize()
        leg(LegSizeA, LegSizeB, LegSizeC, LegSizeBottom,
                LegSizeTop, (MotorsPerLeg == 2 ? "side" : "arm"), L3Angle, Thickness, print=print);
}

module metabot_body_screws() {
	squareScrews(BodyScrewsW, BodyScrewsH, BodyScrewsSize, Thickness);
}

module metabot_body(print=false, top=false) {
    metabot_colorize()
        body(BodySize, Legs, Thickness, print=print)
		if (top && BodyScrews) {
			metabot_body_screws();
		}
}

module metabot_side(print=false) {
    metabot_colorize()
        side(SideSize, SideHolesToBorder, Thickness, print=print);
}

module metabot_batfix(print=false) {
	metabot_colorize()
    	batfix(print=print)
        	metabot_body_screws();
}
// file: ../config.scad
// Number of legs
Legs = 4;

// Size of the body
BodySize = 22;

// Number of motors per leg (2 or 3)
MotorsPerLeg = 3;

// Static L3 angle (used only if 2 motors per leg)
L3Angle = -5;

// Color of the parts, for rendering
PartsColor = [0.8, 0.8, 0.8];

// Thickness of parts (2.2 is good for Ollo rivets)
Thickness = 2.2;

// Sizes of the parts of the leg
// Ratio of leg parts
LegSize = 100;
LegSizeA = (0.60)*LegSize;
LegSizeB = (0.20)*LegSize;
LegSizeC = (0.20)*LegSize;

// Width of the bottom part of the leg
LegSizeBottom = 10;

// Size of the "top" part of the legs, in mm
LegSizeTop = 30;

// Body screws
BodyScrews = true;
BodyScrewsSize = 3.3;
BodyScrewsW = 7;
BodyScrewsH = 12;

// Motor dimensions
MotorWidth = 24;
MotorHeight = 36;
MotorDepth = 24;
MotorArmOffset = 9;

// U dimensions
UHeight = 15.2;
URadius = 8;
UWidth = 30+Thickness/2;
UTotalHeight = UHeight+URadius;
UScrewsSpacing = 10;
UScrewsDiameter= 3.3;

// Side dimensions
SideSize = 35;
SideHolesToBorder = 5;

// Defining the resolution
$fn=35;
// main file
include <../config.scad>;
use <../parts.scad>;

metabot_side(print=true);
